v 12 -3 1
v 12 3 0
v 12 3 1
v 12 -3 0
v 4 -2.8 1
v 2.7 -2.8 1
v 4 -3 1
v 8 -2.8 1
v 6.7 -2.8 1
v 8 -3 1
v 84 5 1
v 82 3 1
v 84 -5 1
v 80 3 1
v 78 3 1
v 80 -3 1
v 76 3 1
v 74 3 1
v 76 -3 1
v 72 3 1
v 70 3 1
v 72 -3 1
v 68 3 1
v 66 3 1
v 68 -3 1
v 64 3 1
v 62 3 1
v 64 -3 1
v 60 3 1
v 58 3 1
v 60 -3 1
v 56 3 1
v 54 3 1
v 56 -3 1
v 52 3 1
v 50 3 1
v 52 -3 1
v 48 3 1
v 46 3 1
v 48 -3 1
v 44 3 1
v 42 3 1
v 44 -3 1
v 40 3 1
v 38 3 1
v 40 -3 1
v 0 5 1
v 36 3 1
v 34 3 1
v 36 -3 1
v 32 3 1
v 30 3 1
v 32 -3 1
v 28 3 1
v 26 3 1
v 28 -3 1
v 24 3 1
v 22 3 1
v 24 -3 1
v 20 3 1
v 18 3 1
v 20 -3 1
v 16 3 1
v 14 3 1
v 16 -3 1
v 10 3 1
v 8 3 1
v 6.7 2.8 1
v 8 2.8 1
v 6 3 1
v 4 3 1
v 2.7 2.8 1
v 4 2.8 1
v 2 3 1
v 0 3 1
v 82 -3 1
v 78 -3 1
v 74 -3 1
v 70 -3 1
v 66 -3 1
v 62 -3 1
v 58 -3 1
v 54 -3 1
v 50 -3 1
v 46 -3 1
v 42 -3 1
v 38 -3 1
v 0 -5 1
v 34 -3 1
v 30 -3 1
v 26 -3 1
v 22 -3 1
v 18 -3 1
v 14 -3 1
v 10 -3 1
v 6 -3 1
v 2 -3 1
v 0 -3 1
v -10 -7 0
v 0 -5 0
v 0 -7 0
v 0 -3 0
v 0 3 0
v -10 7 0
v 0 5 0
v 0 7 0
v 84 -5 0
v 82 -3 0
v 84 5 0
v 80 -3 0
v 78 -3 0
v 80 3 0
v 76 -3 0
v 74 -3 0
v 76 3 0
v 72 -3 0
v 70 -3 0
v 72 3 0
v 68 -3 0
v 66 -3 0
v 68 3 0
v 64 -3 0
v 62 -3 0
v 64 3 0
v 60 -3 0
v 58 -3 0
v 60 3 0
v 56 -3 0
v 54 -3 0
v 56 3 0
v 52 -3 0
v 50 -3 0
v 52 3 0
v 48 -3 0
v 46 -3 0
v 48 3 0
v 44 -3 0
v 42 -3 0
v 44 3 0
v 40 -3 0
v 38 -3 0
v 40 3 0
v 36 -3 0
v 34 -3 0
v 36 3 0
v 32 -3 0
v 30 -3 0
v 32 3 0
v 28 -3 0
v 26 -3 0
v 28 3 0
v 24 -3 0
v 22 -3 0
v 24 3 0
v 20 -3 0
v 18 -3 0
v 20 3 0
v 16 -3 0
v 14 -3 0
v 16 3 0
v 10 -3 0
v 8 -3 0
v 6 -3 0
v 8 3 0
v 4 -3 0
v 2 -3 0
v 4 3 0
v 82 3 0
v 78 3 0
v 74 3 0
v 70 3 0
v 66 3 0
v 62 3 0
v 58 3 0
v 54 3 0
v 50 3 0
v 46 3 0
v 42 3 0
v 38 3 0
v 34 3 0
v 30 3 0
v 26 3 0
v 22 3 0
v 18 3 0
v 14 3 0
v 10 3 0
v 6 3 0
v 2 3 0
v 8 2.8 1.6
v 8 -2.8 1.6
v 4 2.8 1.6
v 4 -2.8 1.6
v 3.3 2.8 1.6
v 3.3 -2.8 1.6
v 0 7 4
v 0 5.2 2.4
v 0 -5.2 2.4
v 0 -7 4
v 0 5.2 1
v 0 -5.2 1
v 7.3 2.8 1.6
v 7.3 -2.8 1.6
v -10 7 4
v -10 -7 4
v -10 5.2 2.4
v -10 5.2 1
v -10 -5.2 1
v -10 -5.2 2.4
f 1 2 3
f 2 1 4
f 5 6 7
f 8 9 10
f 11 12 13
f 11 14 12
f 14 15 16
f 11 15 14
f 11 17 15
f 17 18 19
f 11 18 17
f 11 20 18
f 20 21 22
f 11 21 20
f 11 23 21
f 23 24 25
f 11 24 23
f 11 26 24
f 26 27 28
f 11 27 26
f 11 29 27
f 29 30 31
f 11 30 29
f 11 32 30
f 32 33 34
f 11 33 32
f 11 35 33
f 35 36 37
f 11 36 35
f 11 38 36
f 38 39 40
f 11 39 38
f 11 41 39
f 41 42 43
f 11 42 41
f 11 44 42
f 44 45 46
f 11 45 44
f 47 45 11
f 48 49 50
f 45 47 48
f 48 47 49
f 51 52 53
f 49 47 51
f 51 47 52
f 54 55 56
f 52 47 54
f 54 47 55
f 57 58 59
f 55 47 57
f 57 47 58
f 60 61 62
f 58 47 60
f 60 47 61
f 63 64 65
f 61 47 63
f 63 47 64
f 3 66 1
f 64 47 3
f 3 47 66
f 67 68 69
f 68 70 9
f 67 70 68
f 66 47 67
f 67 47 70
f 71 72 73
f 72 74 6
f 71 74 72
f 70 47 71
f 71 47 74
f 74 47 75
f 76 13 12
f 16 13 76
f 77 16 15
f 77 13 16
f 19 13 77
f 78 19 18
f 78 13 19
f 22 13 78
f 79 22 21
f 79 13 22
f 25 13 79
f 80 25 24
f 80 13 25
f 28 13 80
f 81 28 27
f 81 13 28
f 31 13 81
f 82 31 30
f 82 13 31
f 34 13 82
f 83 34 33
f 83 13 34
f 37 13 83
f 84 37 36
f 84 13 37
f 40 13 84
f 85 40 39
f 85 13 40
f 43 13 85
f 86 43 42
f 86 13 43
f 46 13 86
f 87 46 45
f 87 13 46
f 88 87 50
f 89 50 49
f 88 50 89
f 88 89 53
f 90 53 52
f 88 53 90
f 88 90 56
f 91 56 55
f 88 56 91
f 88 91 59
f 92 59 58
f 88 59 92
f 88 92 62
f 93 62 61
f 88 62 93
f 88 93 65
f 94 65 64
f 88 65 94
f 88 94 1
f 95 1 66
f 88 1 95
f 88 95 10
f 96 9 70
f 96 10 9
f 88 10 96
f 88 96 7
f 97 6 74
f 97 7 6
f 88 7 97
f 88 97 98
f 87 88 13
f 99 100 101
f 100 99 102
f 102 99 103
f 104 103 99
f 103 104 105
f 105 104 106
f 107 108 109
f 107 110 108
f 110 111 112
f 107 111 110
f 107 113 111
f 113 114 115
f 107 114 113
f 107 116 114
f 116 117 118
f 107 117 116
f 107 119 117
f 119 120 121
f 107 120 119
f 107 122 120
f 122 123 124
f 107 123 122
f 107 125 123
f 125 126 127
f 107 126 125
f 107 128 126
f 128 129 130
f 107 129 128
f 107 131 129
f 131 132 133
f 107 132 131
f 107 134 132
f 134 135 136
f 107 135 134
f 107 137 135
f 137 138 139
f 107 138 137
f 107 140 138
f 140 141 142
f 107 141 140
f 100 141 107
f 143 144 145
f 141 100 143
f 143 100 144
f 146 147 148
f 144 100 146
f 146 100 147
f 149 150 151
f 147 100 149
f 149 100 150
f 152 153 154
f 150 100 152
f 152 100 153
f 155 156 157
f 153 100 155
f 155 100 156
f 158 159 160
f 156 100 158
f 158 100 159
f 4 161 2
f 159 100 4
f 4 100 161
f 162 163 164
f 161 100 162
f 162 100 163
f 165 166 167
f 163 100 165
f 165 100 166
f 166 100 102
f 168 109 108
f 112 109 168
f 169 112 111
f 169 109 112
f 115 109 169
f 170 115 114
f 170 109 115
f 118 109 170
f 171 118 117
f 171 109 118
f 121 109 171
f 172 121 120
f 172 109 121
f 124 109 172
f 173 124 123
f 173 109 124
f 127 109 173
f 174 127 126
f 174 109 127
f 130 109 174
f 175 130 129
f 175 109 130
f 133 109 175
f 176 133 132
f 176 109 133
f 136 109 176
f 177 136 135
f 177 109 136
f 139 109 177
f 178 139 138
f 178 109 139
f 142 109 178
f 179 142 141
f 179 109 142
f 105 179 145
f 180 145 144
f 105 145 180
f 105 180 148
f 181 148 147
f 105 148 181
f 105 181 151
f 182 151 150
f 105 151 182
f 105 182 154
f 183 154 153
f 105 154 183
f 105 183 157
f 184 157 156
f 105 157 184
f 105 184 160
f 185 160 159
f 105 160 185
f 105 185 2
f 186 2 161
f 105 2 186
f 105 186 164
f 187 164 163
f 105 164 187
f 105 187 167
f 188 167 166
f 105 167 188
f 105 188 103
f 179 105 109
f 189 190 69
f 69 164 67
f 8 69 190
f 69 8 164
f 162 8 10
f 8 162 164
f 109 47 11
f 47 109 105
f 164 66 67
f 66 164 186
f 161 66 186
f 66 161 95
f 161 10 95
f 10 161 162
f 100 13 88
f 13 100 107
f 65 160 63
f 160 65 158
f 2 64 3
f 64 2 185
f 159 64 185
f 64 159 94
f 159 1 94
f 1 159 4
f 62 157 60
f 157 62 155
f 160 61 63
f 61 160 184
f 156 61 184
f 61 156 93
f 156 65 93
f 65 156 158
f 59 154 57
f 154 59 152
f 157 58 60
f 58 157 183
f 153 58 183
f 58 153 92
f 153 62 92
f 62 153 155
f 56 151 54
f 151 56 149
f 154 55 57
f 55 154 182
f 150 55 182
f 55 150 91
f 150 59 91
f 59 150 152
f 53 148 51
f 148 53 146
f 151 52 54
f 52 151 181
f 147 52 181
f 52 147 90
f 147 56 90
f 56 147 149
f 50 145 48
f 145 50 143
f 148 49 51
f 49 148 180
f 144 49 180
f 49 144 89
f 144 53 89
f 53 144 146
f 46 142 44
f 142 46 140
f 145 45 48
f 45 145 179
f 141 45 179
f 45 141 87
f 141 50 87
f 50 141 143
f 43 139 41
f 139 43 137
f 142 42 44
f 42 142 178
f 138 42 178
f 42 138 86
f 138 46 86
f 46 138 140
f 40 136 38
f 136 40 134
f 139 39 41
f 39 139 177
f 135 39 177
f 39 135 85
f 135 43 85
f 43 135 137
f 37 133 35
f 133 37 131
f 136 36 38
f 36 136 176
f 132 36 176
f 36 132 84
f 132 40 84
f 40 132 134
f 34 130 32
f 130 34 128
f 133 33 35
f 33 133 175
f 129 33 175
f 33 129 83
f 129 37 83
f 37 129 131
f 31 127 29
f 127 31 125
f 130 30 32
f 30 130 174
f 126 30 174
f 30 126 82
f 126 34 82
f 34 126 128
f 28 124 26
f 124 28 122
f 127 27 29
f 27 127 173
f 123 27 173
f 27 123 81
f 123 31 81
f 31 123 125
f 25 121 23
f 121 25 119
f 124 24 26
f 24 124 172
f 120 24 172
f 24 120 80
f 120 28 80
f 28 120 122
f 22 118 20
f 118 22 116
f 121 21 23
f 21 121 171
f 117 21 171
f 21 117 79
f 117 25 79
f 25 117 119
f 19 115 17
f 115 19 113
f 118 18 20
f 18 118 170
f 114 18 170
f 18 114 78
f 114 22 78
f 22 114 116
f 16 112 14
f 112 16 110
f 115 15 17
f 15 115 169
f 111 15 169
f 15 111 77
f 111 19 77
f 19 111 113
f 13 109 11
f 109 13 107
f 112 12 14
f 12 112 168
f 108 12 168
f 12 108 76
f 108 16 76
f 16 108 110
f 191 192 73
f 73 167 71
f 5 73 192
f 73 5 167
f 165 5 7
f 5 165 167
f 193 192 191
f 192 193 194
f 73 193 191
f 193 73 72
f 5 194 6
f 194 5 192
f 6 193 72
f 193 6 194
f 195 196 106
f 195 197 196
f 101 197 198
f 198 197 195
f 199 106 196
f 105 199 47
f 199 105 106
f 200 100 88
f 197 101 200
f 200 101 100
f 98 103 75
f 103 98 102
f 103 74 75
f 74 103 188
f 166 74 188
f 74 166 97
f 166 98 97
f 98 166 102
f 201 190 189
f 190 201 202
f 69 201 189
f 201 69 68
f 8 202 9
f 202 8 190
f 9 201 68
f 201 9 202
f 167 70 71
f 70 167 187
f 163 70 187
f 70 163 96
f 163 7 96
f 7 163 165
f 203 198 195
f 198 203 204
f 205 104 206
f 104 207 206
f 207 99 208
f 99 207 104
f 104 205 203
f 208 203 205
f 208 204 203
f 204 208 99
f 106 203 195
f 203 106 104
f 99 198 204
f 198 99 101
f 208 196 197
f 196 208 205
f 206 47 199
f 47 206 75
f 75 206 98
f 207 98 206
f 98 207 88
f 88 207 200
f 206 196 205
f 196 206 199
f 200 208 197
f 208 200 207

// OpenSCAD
// file: ../../lib/shapes.scad
$fa = $preview ? 1 : .1;
$fs = $preview ? 1 : .1;

// Beginnings of a 3d shapes library. I want shapes with a "margin" property
// and possibly specific overrides for margins in a particular direction.
// The idea is to add a thickness around the outside of the entire shape
// without changing the center of the shape. This can be used with
// `difference` to carve out space for shapes to fit, with adjustable
// tolerance.

module ngon(
  n=undef,
  r=undef, side=undef, // must specify one of r or side length
  z=undef, // thickness (in z direction)
  on="origin", // placement: origin | y+
  margin=0,       // global margin
  margin_r=undef, // override r margin
  margin_z=undef, // override depth margin
  chamfer=0,
) {
  margin_r = margin_r == undef ? margin : margin_r;
  margin_z = margin_z == undef ? margin : margin_z;
  r = r == undef ? side/(2*sin(180/n)) : r;
  t = on == "y+" ? [0, r*cos(180/n),   0]
    : on == "z+" ? [0,            0, z/2]
    :              [0,            0,   0];
  translate(t)
    rotate([0, 0, 90 - (n%2 == 0 ? 180/n : 0)])
      if (chamfer > 0) {
        // TODO chamfer maybe depends on the margin in this case too?
        translate([0, 0, (z + 2*margin_z - chamfer)/2])
          cylinder(h=chamfer, r1=r + margin_r, r2=r + margin_r - chamfer, $fn=n, center=true);
        cylinder(h=z + 2*margin_z - 2*chamfer, r=r + margin_r, $fn=n, center=true);
        translate([0, 0, -(z + 2*margin_z - chamfer)/2])
          cylinder(h=chamfer, r2=r + margin_r, r1=r + margin_r - chamfer, $fn=n, center=true);
      } else {
        cylinder(h=z + 2*margin_z, r=r + margin_r, $fn=n, center=true);
      }
}

//difference() {
//  %ngon(n=5, side=8, z=4, chamfer=1, on="y+", margin=1);
//  ngon(n=5, side=8, z=4, chamfer=1, on="y+");
//}

module box(
  x=undef, y=undef, z=undef,  // 3 ways to specify size
  on="origin",    // placement: origin | x+ | y+ | z+
  margin=0,  // global margin
  margin_x=undef,  // override margins
  margin_y=undef,
  margin_z=undef,
  chamfer=0, // flatten the corners
) {
  s = is_num(z)  ? [x, y, z]  // size: x=num, y=num, z=num
    : is_list(x) ? x          //   or: x=[num, num, num]
    : [x, x, x];              //   or: x=num
  m = [
    margin_x == undef ? margin : margin_x,
    margin_y == undef ? margin : margin_y,
    margin_z == undef ? margin : margin_z
  ];

  translate(on == "x+" ? [ s.x/2,      0,      0]
          : on == "x-" ? [-s.x/2,      0,      0]
          : on == "y+" ? [     0,  s.y/2,      0]
          : on == "y-" ? [     0, -s.y/2,      0]
          : on == "z+" ? [     0,      0,  s.z/2]
          : on == "z-" ? [     0,      0, -s.z/2]
          :              [     0,      0,      0])
    if (chamfer > 0) {
      // This looks pretty wild, but I just want to maintain a minimum margin
      // in each of the specified directions from the chamfer, so to keep the
      // chamfer angles all at 45, you need take the smallest chamfer out of
      // the big shape (box + margins) that maintains the right margin
      // distance in each direction.
      cyz = 2*min(m.y, m.z) + chamfer;
      cxz = 2*min(m.x, m.z) + chamfer;
      cxy = 2*min(m.x, m.y) + chamfer;
      intersection() {
        cube(s + 2*m, center=true);
        rotate([45,0,0])
          cube([
            s.x + 2*m.x + 1,
            (s.y + 2*m.y + s.z + 2*m.z - cyz)/sqrt(2),
            (s.y + 2*m.y + s.z + 2*m.z - cyz)/sqrt(2)
          ], center=true);
        rotate([0,45,0])
          cube([
            (s.x + 2*m.x + s.z + 2*m.z - cxz)/sqrt(2),
            s.y + 2*m.y + 1,
            (s.x + 2*m.x + s.z + 2*m.z - cxz)/sqrt(2)
          ], center=true);
        rotate([0,0,45])
          cube([
            (s.x + 2*m.x + s.y + 2*m.y - cxy)/sqrt(2),
            (s.x + 2*m.x + s.y + 2*m.y - cxy)/sqrt(2),
            s.z + 2*m.z + 1
          ], center=true);
      }
    } else {
      cube(s + 2*m, center=true);
    }
}

//difference() {
//  box(10, 20, 30, chamfer=4, margin=1, margin_x=2);
//  box(10, 20, 30, chamfer=4);
//  // see through to the chamfer on different margins
//  color("red") box(100, on="z+");
//}
// main file
use <../../lib/shapes.scad>;

/* This model has been a total failure so far, but
   has given me an idea or two. The main faults/problems
   to solve in future versions are:
   - zip tie isn't held into the tabs! lol
   - it tends to crease right before the rung (and break)
   - the tabs aren't that strong, and can shear along the layer line

   One of the ideas is the `box` model should take a list of `on`
   values, like `on=["x+","y+"]` or `on="x+,y+"`
*/
rung_span = 6;
rung_gap = 2;
wall = 2;
t = 1;
tol=.4;
c = .4;

module rung(gap=rung_gap, span=rung_span, tab=false) {
  translate([0, span/2+wall/2, 0])
    box(wall+gap, wall, t, on="z+");
  translate([wall/2, 0, 0])
    box(wall, span, t, on="z+");
  translate([0, -span/2-wall/2, 0])
    box(wall+gap, wall, t, on="z+");

  if (tab) {
    translate([wall/2, 0, t])
      difference() {
        box(wall, span-tol, t-tol, on="z+");
        translate([0, 0, (t-tol)/2])
          rotate([0, -45, 0])
            box(100, on="z+");
      }
  }
}

for (i=[0:20])
  translate([(rung_gap+wall)/2 + (rung_gap+wall)*i, 0, 0])
    rung(tab=(i<2));

// head
difference() {
  translate([0, 0, 2*t])
    box(10, rung_span+4*wall, 4*t, on="x-");
  translate([0, 0, t+(t+tol)/2])
    box(10, rung_span+2*wall+tol, t+tol, on="x-");
}
